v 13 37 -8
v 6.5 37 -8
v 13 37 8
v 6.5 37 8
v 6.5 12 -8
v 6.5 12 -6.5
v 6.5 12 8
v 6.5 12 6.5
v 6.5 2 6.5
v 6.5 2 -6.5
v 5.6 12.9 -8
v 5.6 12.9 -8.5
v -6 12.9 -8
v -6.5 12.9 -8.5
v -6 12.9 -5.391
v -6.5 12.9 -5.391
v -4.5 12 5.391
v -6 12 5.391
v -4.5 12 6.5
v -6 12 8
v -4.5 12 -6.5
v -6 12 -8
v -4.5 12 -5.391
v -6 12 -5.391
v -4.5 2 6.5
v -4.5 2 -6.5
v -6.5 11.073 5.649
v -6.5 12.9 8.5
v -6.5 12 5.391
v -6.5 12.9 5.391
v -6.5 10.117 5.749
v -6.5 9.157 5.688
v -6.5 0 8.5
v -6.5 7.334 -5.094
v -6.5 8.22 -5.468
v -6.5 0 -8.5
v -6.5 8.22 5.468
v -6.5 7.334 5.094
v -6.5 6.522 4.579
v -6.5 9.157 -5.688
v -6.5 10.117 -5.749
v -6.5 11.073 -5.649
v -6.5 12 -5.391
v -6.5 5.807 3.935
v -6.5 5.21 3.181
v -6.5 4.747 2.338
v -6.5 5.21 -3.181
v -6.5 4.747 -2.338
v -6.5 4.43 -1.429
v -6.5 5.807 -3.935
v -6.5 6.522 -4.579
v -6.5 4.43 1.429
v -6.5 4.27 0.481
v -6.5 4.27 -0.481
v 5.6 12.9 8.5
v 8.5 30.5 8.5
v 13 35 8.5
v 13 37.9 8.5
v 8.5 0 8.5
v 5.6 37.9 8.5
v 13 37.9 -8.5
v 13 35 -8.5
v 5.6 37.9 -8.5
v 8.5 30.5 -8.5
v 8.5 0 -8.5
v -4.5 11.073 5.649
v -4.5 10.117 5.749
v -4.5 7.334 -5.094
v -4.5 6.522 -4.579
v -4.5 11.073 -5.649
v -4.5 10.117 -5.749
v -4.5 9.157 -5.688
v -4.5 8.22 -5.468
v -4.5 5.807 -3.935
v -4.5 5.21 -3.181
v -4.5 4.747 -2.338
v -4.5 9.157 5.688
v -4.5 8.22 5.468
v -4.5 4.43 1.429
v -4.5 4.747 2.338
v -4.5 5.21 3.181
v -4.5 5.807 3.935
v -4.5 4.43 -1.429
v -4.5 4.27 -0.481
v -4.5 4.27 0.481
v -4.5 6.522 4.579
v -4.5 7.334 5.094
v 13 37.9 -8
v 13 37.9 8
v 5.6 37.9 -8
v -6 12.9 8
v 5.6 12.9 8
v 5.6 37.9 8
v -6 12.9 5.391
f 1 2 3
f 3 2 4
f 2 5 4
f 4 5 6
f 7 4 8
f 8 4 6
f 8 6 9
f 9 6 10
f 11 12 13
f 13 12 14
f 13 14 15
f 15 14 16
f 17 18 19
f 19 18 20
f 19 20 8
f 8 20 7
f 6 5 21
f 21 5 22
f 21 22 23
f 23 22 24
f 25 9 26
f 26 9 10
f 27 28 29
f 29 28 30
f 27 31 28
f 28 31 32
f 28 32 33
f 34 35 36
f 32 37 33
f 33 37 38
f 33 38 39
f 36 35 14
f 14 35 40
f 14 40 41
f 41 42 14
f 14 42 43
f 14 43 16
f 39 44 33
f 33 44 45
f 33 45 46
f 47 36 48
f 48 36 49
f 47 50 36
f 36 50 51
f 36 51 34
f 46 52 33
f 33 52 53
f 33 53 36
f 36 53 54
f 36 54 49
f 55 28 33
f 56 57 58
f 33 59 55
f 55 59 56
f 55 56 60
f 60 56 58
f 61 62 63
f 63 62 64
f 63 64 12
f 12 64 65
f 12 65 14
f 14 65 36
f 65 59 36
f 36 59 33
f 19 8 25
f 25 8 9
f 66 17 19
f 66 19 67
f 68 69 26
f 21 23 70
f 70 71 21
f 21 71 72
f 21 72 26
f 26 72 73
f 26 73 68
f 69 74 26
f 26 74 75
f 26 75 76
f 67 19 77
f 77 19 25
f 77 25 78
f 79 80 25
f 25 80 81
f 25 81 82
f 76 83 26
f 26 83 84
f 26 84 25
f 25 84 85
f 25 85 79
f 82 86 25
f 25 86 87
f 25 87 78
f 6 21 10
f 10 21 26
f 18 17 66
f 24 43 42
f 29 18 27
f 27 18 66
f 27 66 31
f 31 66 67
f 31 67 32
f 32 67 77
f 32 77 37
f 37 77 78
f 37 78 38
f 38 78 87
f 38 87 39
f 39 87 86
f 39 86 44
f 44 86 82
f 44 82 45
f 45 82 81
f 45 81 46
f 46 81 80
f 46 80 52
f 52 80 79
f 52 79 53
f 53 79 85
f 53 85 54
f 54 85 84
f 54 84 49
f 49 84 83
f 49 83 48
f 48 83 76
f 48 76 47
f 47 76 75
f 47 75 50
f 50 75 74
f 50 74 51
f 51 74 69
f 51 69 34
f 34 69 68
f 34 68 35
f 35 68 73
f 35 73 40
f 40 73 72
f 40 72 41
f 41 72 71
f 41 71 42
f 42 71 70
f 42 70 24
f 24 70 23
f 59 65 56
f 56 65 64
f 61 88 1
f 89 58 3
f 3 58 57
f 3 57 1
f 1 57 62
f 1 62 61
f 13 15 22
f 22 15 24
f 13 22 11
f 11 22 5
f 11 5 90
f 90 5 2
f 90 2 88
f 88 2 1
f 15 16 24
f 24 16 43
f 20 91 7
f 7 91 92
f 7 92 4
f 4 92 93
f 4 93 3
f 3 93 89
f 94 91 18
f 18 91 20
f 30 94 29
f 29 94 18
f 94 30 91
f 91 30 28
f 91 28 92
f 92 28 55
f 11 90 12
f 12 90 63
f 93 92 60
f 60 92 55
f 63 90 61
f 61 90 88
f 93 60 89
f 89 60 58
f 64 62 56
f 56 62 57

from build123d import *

# Parameters (mm, degrees)
SKETCH1_W           = 13
SKETCH1_H           = 17
BOSS_EXTRUDE1_DEPTH = 2
BOSS_EXTRUDE2_DEPTH = 10
SKETCH3_R           = 5.75
CUT_EXTRUDE1_DEPTH  = 15
SKETCH4_W           = 17
SKETCH4_H           = 37
BOSS_EXTRUDE3_DEPTH = 2
SKETCH5_W           = 17
SKETCH5_H           = 2
BOSS_EXTRUDE4_DEPTH = 4.5
BOSS_EXTRUDE5_DEPTH = 0.9
SKETCH7_W           = 0.5
SKETCH7_H           = 24.1
BOSS_EXTRUDE6_DEPTH = 0.9
SKETCH8_W           = 7.4
SKETCH8_H           = 0.5
BOSS_EXTRUDE7_DEPTH = 0.9
BOSS_EXTRUDE8_DEPTH = 17


with BuildPart() as part:
    # Sketch1 → Boss-Extrude1 (new body)
    with BuildSketch(Plane(origin=(0, 0, 0), x_dir=(1, 0, 0), z_dir=(0, 1, 0))):
        Rectangle(SKETCH1_W, SKETCH1_H)
    extrude(amount=BOSS_EXTRUDE1_DEPTH)

    # Sketch2 → Boss-Extrude2 (add)
    with BuildSketch(Plane(origin=(0, 2, 0), x_dir=(1, 0, 0), z_dir=(0, 1, 0))):
        Polygon((-6.5, 8.5), (-6.5, -8.5), (6.5, -8.5), (6.5, -6.5), (-4.5, -6.5), (-4.5, 6.5), (6.5, 6.5), (6.5, 8.5), align=None)
    extrude(amount=BOSS_EXTRUDE2_DEPTH)

    # Sketch3 → Cut-Extrude1 (cut)
    with BuildSketch(Plane.ZY.offset(6.5)):
        with Locations((0, 10)):
            Circle(SKETCH3_R)
    extrude(amount=-CUT_EXTRUDE1_DEPTH, mode=Mode.SUBTRACT)

    # Sketch4 → Boss-Extrude3 (add)
    with BuildSketch(Plane(origin=(6.5, 0, 0), x_dir=(0, 0, -1), z_dir=(1, 0, 0))):
        with Locations((0, 18.5)):
            Rectangle(SKETCH4_W, SKETCH4_H)
    extrude(amount=BOSS_EXTRUDE3_DEPTH)

    # Sketch5 → Boss-Extrude4 (add)
    with BuildSketch(Plane(origin=(8.5, 0, 0), x_dir=(0, 0, -1), z_dir=(1, 0, 0))):
        with Locations((0, 36)):
            Rectangle(SKETCH5_W, SKETCH5_H)
    extrude(amount=BOSS_EXTRUDE4_DEPTH)

    # Sketch6 → Boss-Extrude5 (add)
    with BuildSketch(Plane(origin=(0, 12, 0), x_dir=(1, 0, 0), z_dir=(0, 1, 0))):
        Polygon((-6, 5.390964663), (-6.5, 5.390964663), (-6.5, 8.5), (6.5, 8.5), (6.5, 8), (-6, 8), align=None)
        Polygon((6.5, -8), (-6, -8), (-6, -5.390964663), (-6.5, -5.390964663), (-6.5, -8.5), (6.5, -8.5), align=None)
    extrude(amount=BOSS_EXTRUDE5_DEPTH)

    # Sketch7 → Boss-Extrude6 (add)
    with BuildSketch(Plane.ZY.offset(-6.5)):
        with Locations((-8.25, 24.95)):
            Rectangle(SKETCH7_W, SKETCH7_H)
        with Locations((8.25, 24.95)):
            Rectangle(SKETCH7_W, SKETCH7_H)
    extrude(amount=BOSS_EXTRUDE6_DEPTH)

    # Sketch8 → Boss-Extrude7 (add)
    with BuildSketch(Plane(origin=(0, 37, 0), x_dir=(1, 0, 0), z_dir=(0, 1, 0))):
        with Locations((9.3, 8.25)):
            Rectangle(SKETCH8_W, SKETCH8_H)
        with Locations((9.3, -8.25)):
            Rectangle(SKETCH8_W, SKETCH8_H)
    extrude(amount=BOSS_EXTRUDE7_DEPTH)

    # Sketch9 → Boss-Extrude8 (add)
    with BuildSketch(Plane.XY.offset(8.5)):
        Polygon((13, 35), (8.5, 30.5), (8.5, 35), align=None)
    extrude(amount=-BOSS_EXTRUDE8_DEPTH)


solid = part.part
